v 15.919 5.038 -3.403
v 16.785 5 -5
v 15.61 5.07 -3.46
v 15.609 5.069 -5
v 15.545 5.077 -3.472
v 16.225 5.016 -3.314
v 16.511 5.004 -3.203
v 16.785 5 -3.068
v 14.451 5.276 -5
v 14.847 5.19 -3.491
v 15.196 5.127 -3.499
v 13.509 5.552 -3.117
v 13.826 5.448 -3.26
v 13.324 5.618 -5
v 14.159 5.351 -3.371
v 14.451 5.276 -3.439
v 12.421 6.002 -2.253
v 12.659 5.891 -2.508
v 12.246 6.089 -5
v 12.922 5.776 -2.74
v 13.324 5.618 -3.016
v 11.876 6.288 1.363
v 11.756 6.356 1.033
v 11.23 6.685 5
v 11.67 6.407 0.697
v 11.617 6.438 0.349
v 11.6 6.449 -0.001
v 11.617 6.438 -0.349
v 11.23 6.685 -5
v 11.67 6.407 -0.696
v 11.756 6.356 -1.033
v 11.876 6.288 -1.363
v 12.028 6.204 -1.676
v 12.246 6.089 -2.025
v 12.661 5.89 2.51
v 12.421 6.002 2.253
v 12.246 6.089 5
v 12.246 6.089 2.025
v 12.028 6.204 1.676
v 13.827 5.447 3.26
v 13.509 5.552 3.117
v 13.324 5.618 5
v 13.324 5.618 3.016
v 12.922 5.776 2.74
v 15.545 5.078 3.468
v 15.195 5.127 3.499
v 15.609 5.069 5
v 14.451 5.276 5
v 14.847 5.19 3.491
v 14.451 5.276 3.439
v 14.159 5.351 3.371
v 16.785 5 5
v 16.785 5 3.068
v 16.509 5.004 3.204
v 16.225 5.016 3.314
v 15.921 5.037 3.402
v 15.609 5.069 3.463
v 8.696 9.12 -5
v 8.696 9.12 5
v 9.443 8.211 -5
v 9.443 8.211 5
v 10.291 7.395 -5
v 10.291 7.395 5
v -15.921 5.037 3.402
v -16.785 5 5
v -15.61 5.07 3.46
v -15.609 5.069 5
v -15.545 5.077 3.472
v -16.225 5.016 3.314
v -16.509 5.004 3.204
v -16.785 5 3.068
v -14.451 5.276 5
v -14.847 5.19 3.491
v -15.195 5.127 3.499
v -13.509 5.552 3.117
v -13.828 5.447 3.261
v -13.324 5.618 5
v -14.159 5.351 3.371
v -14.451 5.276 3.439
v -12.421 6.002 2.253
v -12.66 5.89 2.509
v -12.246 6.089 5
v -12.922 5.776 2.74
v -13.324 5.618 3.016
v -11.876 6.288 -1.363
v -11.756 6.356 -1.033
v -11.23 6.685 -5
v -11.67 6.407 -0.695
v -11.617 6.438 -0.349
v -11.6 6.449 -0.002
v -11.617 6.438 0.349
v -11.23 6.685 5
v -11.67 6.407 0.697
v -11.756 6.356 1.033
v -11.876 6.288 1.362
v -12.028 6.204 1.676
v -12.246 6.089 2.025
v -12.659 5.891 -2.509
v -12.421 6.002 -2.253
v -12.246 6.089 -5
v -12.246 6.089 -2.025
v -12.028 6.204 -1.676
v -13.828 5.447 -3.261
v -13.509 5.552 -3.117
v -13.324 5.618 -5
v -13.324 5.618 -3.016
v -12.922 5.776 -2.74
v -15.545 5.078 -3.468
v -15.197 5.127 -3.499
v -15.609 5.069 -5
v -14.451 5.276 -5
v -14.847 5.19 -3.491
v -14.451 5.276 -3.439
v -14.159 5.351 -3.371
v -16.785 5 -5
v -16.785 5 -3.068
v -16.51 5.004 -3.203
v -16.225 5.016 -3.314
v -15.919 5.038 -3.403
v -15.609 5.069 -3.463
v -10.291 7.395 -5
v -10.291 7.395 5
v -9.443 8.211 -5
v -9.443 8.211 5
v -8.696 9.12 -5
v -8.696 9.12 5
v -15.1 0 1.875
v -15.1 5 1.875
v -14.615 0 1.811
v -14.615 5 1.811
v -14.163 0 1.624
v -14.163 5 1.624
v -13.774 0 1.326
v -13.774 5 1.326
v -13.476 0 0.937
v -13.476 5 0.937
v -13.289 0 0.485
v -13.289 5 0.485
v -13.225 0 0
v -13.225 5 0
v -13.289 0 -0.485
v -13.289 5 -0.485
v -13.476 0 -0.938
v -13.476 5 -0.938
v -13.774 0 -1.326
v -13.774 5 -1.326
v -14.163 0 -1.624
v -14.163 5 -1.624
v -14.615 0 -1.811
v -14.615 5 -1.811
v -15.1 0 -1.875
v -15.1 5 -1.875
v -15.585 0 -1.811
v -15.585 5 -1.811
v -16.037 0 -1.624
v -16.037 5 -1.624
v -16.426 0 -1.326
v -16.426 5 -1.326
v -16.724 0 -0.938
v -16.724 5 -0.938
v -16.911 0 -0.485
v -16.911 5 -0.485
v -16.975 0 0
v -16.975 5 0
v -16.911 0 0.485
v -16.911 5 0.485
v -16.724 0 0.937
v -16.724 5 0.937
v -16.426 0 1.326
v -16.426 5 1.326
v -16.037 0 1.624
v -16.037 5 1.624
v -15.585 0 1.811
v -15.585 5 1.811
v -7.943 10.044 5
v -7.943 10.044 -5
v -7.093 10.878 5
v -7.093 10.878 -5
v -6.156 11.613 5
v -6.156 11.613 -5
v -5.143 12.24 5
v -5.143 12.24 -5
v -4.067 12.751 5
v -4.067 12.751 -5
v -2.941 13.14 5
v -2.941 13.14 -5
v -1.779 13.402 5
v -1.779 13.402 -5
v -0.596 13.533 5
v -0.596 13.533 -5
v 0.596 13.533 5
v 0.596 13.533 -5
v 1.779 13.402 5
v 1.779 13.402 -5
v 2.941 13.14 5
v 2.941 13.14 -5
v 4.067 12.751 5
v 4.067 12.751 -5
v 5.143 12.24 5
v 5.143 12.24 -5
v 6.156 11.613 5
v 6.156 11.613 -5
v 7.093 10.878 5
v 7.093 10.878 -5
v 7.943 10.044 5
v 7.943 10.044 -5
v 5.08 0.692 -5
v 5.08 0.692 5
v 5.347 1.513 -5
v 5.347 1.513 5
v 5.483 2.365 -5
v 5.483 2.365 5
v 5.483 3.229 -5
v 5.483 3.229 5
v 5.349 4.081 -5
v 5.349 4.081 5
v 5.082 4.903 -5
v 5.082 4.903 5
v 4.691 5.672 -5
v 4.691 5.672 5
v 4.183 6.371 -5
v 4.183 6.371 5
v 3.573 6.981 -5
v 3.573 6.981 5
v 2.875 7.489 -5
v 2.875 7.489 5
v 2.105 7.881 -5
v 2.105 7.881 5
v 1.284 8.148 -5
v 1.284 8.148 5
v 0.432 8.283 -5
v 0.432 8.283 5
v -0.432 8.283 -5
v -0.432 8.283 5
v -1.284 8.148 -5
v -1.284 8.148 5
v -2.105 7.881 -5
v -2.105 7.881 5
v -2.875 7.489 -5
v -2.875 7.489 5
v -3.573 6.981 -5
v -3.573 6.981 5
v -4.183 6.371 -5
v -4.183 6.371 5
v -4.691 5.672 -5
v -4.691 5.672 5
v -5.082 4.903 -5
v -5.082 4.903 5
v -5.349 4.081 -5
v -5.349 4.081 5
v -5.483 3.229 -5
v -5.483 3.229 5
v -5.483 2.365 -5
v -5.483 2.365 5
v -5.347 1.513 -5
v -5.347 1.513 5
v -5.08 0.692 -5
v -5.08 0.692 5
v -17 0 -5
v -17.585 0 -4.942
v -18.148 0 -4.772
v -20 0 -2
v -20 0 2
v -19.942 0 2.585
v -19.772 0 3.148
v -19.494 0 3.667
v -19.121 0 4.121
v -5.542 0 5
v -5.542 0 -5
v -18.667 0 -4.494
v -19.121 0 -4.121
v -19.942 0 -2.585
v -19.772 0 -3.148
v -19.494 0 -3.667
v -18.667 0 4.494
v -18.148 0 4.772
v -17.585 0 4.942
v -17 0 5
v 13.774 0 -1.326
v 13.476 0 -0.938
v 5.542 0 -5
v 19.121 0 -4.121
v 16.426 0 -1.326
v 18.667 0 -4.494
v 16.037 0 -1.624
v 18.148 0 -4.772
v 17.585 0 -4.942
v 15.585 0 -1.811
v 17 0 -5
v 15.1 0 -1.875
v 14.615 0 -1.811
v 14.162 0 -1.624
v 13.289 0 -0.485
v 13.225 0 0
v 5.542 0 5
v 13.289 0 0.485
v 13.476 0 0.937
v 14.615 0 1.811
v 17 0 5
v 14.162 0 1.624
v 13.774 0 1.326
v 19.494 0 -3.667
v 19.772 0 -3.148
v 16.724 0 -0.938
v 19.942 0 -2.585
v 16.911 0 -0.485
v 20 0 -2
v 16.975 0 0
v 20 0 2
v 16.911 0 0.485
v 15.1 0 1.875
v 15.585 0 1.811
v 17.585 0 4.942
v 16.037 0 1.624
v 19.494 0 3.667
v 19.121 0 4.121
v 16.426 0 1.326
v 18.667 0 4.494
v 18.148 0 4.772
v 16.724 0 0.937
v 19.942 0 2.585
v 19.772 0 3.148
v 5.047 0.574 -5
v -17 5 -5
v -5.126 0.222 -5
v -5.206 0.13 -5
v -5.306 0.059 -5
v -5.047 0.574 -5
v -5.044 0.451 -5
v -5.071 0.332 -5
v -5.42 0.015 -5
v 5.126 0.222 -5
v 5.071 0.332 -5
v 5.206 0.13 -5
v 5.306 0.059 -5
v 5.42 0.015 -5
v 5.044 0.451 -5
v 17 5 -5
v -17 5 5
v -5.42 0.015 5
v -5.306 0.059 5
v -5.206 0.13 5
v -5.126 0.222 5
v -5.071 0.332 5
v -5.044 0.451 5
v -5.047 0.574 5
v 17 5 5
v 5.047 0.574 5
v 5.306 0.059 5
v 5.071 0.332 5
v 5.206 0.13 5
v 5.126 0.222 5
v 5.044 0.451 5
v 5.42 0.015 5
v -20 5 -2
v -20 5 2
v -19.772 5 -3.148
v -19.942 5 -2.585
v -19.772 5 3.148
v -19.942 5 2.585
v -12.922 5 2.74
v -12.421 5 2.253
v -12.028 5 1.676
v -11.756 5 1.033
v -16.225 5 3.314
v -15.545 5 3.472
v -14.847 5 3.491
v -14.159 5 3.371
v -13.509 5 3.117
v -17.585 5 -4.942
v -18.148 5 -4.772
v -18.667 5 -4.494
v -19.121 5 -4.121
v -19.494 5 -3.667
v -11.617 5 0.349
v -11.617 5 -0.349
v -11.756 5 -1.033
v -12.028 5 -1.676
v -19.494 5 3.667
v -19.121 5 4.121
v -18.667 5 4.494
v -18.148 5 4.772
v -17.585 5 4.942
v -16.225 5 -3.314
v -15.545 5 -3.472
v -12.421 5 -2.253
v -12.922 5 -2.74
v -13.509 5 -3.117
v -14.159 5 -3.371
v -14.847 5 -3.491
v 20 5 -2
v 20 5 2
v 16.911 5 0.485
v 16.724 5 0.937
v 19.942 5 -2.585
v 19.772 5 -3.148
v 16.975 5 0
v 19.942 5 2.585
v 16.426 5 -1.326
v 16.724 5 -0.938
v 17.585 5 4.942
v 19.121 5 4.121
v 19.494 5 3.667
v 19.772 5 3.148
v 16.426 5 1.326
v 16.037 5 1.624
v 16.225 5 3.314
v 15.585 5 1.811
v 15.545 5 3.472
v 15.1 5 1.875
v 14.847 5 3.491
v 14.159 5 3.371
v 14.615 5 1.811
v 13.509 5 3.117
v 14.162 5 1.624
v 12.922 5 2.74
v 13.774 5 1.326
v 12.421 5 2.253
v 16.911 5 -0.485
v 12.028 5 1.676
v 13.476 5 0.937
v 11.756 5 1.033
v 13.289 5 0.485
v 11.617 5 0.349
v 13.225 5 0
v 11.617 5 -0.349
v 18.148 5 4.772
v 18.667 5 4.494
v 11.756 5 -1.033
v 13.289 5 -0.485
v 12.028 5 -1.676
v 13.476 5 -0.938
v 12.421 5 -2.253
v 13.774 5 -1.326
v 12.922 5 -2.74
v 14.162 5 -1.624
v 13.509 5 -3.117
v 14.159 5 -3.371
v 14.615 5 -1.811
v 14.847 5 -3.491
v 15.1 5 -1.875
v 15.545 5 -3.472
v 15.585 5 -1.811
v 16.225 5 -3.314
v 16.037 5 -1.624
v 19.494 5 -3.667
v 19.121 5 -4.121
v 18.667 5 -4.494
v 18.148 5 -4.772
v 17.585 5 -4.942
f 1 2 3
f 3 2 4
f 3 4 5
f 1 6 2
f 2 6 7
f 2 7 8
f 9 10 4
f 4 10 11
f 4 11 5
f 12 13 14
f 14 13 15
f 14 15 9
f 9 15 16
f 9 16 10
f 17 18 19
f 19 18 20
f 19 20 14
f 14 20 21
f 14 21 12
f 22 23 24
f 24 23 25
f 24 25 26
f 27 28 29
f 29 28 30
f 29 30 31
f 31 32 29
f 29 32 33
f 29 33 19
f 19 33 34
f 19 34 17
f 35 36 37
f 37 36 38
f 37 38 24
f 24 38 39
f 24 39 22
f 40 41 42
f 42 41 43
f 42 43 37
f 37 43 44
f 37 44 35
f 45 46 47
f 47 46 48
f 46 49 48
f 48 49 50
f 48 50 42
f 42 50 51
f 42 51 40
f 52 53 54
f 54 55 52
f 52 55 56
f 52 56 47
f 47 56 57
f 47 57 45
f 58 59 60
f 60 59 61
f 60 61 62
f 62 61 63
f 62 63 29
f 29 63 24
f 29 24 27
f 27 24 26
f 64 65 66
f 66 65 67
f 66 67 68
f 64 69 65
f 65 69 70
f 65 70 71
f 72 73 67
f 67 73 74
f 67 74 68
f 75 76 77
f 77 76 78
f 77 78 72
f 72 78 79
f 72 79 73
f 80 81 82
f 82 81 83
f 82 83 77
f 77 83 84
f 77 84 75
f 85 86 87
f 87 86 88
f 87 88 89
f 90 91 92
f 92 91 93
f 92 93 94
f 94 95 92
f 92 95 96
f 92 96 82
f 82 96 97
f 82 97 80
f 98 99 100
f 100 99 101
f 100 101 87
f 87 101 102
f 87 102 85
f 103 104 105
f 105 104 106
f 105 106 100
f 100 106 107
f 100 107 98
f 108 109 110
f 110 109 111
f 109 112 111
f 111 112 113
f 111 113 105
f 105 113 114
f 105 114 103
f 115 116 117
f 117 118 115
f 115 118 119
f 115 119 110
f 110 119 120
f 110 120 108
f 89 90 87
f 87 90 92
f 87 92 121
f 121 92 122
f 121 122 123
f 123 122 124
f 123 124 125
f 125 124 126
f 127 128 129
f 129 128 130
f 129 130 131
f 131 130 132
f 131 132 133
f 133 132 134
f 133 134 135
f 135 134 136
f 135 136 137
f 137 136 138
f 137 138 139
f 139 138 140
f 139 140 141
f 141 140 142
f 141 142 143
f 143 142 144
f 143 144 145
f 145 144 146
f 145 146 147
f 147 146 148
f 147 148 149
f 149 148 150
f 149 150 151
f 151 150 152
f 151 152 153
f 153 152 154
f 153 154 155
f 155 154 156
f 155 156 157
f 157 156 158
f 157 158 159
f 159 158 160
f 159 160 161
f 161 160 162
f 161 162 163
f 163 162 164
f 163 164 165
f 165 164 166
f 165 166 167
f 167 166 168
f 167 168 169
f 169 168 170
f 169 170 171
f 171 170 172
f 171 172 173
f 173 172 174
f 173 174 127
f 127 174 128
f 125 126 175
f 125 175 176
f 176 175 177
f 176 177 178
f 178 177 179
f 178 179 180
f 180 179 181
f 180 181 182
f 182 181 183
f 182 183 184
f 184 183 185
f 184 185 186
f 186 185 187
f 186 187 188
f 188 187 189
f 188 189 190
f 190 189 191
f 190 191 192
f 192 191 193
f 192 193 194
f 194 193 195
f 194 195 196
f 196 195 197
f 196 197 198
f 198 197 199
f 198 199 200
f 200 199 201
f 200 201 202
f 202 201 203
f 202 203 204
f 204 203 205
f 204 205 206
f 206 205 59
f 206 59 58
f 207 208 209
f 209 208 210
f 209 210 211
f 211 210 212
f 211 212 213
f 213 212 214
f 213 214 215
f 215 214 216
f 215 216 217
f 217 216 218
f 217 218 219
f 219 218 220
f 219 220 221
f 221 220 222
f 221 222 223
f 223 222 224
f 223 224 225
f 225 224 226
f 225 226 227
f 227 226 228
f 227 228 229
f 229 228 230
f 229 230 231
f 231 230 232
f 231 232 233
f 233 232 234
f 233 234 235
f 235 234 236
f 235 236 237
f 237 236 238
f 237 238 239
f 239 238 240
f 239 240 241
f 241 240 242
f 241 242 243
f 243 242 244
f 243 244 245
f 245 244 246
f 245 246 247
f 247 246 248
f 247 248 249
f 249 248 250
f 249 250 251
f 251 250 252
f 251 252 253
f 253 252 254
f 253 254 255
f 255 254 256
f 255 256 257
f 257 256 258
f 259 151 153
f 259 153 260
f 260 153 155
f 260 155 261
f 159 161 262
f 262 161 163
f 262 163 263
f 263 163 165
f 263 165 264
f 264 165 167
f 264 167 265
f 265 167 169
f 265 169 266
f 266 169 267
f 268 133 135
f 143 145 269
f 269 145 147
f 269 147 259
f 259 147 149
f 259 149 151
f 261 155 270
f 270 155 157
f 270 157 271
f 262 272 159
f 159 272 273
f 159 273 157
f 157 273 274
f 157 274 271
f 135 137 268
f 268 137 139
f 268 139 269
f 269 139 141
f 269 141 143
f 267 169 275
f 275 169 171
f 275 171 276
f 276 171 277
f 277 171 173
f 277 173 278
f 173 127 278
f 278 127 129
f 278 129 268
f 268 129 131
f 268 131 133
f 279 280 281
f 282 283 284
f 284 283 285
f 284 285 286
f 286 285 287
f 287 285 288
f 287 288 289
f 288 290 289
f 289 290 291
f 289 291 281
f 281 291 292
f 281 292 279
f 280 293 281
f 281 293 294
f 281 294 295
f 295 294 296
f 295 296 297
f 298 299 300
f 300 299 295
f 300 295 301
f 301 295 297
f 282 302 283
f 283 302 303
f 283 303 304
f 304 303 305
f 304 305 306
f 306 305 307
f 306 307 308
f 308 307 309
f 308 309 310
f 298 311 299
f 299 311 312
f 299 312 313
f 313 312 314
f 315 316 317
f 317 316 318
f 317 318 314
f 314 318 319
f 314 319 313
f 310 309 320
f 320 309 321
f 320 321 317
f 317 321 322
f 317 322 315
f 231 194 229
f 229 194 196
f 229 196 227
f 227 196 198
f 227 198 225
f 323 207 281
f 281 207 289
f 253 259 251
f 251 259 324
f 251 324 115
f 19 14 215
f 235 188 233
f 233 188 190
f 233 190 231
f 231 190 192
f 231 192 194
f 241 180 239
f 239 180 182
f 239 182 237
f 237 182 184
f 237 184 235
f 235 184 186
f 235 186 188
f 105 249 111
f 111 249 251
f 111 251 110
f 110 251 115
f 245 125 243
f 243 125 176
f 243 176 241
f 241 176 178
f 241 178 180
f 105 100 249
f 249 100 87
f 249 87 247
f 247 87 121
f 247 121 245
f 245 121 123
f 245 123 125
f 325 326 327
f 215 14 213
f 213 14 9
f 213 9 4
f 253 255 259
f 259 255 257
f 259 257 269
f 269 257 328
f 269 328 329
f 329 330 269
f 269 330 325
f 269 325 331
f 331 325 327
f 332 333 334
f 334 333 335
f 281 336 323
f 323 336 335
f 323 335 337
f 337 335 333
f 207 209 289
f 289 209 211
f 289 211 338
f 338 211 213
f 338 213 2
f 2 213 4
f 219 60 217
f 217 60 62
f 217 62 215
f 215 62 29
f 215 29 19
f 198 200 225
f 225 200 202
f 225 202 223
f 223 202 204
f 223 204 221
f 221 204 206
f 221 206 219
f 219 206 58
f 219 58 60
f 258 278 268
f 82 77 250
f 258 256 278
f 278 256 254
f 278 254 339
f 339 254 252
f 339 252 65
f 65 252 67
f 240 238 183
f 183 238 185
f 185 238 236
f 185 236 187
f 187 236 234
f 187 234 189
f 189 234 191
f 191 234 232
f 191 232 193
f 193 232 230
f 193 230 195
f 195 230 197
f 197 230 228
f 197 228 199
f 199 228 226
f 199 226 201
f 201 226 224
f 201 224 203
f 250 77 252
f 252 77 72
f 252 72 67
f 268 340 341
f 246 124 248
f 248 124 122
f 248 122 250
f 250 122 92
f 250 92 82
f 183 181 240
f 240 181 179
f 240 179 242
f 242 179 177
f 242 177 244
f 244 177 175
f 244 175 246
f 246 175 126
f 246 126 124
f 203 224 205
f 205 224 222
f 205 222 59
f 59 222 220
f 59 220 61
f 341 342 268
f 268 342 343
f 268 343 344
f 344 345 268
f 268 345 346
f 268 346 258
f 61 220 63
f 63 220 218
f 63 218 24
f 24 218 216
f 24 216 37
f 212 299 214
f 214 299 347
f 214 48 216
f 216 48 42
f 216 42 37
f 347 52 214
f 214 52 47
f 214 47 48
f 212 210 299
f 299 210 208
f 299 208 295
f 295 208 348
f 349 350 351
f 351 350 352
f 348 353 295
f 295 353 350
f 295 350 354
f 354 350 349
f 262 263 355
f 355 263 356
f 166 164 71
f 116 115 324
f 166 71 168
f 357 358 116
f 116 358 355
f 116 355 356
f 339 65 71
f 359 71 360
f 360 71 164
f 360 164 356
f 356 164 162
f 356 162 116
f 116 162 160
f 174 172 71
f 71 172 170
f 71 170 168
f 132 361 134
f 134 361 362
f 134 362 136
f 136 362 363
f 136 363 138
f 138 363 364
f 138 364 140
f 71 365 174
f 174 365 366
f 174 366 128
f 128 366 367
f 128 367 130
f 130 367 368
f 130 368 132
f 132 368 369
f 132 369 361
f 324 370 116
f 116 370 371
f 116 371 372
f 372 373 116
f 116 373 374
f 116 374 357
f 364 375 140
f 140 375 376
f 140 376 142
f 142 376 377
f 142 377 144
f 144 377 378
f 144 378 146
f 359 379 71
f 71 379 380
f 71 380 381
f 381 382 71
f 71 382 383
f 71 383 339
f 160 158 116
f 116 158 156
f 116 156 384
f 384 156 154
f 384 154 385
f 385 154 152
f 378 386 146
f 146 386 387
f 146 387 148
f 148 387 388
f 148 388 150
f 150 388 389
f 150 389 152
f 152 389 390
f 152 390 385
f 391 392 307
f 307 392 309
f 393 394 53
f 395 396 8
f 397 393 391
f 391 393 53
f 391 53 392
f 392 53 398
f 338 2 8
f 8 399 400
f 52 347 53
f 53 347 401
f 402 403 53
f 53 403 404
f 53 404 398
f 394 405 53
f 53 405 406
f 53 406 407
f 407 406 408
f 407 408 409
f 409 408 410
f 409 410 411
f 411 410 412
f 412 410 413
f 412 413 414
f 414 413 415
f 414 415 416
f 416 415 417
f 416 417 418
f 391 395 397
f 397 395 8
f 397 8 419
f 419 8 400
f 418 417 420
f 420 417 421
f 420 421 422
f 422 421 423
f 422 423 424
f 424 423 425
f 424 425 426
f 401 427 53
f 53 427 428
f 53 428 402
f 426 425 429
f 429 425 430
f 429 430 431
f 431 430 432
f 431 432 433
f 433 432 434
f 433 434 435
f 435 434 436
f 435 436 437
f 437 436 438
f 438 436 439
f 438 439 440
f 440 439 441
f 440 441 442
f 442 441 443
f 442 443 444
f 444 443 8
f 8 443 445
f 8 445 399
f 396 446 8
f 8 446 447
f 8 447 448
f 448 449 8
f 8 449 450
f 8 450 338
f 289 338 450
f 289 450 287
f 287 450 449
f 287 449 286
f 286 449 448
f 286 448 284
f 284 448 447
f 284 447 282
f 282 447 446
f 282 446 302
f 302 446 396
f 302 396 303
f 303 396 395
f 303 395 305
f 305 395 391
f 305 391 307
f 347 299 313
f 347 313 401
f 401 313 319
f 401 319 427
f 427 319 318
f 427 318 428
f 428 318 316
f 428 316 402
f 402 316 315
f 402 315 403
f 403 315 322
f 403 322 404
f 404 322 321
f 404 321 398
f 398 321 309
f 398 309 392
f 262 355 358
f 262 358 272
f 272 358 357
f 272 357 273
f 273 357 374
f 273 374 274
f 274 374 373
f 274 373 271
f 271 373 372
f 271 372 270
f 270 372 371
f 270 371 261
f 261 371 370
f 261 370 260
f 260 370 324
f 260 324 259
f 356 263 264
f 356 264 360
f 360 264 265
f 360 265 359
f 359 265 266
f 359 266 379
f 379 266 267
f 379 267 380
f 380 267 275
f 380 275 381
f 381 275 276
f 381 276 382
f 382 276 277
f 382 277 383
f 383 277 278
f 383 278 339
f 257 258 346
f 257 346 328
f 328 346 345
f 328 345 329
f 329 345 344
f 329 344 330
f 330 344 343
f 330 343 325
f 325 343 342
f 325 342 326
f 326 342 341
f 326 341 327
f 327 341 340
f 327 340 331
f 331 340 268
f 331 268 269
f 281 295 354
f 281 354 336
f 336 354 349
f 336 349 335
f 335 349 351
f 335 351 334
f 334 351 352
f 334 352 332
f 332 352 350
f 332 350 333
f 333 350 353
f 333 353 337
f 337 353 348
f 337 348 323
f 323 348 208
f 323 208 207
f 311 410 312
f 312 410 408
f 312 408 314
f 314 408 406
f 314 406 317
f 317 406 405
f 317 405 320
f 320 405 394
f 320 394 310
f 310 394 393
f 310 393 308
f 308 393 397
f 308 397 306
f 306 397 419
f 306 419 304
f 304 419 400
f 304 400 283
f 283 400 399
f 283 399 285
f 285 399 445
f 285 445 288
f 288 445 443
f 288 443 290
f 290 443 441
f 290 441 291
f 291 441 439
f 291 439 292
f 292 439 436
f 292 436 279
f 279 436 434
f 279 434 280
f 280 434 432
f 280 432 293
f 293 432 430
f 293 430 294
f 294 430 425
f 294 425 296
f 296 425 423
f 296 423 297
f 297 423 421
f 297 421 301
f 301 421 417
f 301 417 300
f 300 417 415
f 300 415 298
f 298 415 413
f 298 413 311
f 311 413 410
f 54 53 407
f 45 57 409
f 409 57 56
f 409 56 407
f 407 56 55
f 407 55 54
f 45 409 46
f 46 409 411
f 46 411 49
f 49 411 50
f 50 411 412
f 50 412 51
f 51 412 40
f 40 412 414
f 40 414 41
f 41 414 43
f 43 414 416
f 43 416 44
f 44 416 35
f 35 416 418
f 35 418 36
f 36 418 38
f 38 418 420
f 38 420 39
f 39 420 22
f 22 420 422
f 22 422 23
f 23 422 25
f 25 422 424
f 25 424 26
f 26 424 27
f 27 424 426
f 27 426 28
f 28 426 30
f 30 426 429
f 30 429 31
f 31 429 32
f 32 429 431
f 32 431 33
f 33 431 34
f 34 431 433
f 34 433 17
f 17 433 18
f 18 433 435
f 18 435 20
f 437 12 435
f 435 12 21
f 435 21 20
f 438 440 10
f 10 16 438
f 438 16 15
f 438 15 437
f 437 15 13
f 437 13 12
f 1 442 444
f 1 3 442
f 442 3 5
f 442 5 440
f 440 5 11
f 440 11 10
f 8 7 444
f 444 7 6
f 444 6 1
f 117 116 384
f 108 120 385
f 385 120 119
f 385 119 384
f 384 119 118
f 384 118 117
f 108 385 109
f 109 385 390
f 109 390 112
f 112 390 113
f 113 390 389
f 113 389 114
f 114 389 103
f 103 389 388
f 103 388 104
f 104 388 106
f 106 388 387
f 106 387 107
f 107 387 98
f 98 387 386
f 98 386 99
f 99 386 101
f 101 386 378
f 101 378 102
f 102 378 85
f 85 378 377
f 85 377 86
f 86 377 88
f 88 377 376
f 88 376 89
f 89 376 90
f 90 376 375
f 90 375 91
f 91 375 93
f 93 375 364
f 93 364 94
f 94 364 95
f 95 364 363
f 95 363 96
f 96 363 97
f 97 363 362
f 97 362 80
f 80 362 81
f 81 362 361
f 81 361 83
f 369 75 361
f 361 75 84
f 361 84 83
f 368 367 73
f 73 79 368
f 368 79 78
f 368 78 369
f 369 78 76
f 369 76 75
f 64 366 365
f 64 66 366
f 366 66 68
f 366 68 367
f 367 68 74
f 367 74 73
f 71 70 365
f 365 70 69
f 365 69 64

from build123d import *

# Parameters (mm, degrees)
BOSS_EXTRUDE1_START      = -1
SKETCH1_W                = 40
SKETCH1_H                = 10
BOSS_EXTRUDE1_DEPTH      = 5
BOSS_EXTRUDE2_DEPTH      = 5
BOSS_EXTRUDE2_DEPTH_BACK = 5
SKETCH3_W                = 10
SKETCH3_H                = 10
BOSS_EXTRUDE3_DEPTH      = 5
FILLET1_R                = 3
FILLET2_R                = 3
FILLET3_R                = 0.5
FILLET4_R                = 10
CUT_EXTRUDE1_DEPTH       = 25.669870287
CUT_EXTRUDE1_DEPTH_BACK  = 25.669870287
SKETCH4_R                = 1.875
CUT_EXTRUDE2_START       = 5
SKETCH5_R                = 3.5
CUT_EXTRUDE2_DEPTH       = 10
SKETCH7_W                = 51.703075982
SKETCH7_H                = 23.04476915
CUT_EXTRUDE4_DEPTH       = 25.669870308


with BuildPart() as part:
    # Sketch1 → Boss-Extrude1 (new body)
    with BuildSketch(Plane(origin=(0, 0, 0), x_dir=(1, 0, 0), z_dir=(0, 1, 0)).offset(BOSS_EXTRUDE1_START)):
        Rectangle(SKETCH1_W, SKETCH1_H)
    extrude(amount=-BOSS_EXTRUDE1_DEPTH)

    # Fillet2
    fillet2_edges = [part.edges().sort_by_distance(p)[0] for p in [
        (-20, -3.5, 5),
        (-20, -3.5, -5),
        (20, -3.5, 5),
        (20, -3.5, -5),
    ]]
    fillet(fillet2_edges, radius=FILLET2_R)


with BuildPart() as body_2:
    # Sketch2 → Boss-Extrude2 (new, two sides: drawn at the far end of the back side and taken through both)
    with BuildSketch(Plane.XY.offset(-BOSS_EXTRUDE2_DEPTH_BACK)):
        with BuildLine():
            Line((-10.378945033, 0), (-4.733920151, 0))
            ThreePointArc((-4.733920151, 0), (0, 8.3), (4.733920151, 0))
            Line((4.733920151, 0), (10.378945033, 0))
            ThreePointArc((10.378945033, 0), (0, 13.55), (-10.378945033, 0))
        make_face()
    extrude(amount=BOSS_EXTRUDE2_DEPTH + BOSS_EXTRUDE2_DEPTH_BACK)

    # Sketch3 → Boss-Extrude3 (add)
    with BuildSketch(Plane(origin=(0, 0, 0), x_dir=(1, 0, 0), z_dir=(0, 1, 0))):
        with Locations((-15, 0)):
            Rectangle(SKETCH3_W, SKETCH3_H)
        with Locations((15, 0)):
            Rectangle(SKETCH3_W, SKETCH3_H)
    extrude(amount=BOSS_EXTRUDE3_DEPTH)

    # Fillet1
    fillet1_edges = [body_2.edges().sort_by_distance(p)[0] for p in [
        (20, 2.5, -5),
        (20, 2.5, 5),
        (-20, 2.5, -5),
        (-20, 2.5, 5),
    ]]
    fillet(fillet1_edges, radius=FILLET1_R)

    # Fillet3
    fillet3_edges = [body_2.edges().sort_by_distance(p)[0] for p in [
        (-4.733920151, 0, 0),
        (4.733920151, 0, 0),
    ]]
    fillet(fillet3_edges, radius=FILLET3_R)

    # Fillet4
    fillet4_edges = [body_2.edges().sort_by_distance(p)[0] for p in [
        (10.522475944, 5, 0),
        (-10.522475944, 5, 0),
    ]]
    fillet(fillet4_edges, radius=FILLET4_R)


with BuildPart() as cut_extrude1_tool:
    # Sketch4 → Cut-Extrude1 (new, two sides: drawn at the far end of the back side and taken through both)
    with BuildSketch(Plane(origin=(0, 0, 0), x_dir=(1, 0, 0), z_dir=(0, 1, 0)).offset(-CUT_EXTRUDE1_DEPTH_BACK)):
        with Locations((-15.1, 0)):
            Circle(SKETCH4_R)
        with Locations((15.1, 0)):
            Circle(SKETCH4_R)
    extrude(amount=CUT_EXTRUDE1_DEPTH + CUT_EXTRUDE1_DEPTH_BACK)


with BuildPart() as part_1:
    add(part.part)

    # Cut-Extrude1: cut by cut_extrude1_tool
    add(cut_extrude1_tool.part, mode=Mode.SUBTRACT)

    # Sketch7 → Cut-Extrude4 (cut, through all)
    with BuildSketch(Plane(origin=(0, 0, 0), x_dir=(1, 0, 0), z_dir=(0, 1, 0))):
        with Locations((-1.693322056, -1.721439234)):
            Rectangle(SKETCH7_W, SKETCH7_H)
    extrude(amount=-CUT_EXTRUDE4_DEPTH, mode=Mode.SUBTRACT)


with BuildPart() as body_2_1:
    add(body_2.part)

    # Cut-Extrude1: cut by cut_extrude1_tool
    add(cut_extrude1_tool.part, mode=Mode.SUBTRACT)

    # Sketch5 → Cut-Extrude2 (cut)
    with BuildSketch(Plane(origin=(0, 0, 0), x_dir=(1, 0, 0), z_dir=(0, 1, 0)).offset(CUT_EXTRUDE2_START)):
        with Locations((-15.1, 0)):
            Circle(SKETCH5_R)
        with Locations((15.1, 0)):
            Circle(SKETCH5_R)
    extrude(amount=CUT_EXTRUDE2_DEPTH, mode=Mode.SUBTRACT)


solid = body_2_1.part
